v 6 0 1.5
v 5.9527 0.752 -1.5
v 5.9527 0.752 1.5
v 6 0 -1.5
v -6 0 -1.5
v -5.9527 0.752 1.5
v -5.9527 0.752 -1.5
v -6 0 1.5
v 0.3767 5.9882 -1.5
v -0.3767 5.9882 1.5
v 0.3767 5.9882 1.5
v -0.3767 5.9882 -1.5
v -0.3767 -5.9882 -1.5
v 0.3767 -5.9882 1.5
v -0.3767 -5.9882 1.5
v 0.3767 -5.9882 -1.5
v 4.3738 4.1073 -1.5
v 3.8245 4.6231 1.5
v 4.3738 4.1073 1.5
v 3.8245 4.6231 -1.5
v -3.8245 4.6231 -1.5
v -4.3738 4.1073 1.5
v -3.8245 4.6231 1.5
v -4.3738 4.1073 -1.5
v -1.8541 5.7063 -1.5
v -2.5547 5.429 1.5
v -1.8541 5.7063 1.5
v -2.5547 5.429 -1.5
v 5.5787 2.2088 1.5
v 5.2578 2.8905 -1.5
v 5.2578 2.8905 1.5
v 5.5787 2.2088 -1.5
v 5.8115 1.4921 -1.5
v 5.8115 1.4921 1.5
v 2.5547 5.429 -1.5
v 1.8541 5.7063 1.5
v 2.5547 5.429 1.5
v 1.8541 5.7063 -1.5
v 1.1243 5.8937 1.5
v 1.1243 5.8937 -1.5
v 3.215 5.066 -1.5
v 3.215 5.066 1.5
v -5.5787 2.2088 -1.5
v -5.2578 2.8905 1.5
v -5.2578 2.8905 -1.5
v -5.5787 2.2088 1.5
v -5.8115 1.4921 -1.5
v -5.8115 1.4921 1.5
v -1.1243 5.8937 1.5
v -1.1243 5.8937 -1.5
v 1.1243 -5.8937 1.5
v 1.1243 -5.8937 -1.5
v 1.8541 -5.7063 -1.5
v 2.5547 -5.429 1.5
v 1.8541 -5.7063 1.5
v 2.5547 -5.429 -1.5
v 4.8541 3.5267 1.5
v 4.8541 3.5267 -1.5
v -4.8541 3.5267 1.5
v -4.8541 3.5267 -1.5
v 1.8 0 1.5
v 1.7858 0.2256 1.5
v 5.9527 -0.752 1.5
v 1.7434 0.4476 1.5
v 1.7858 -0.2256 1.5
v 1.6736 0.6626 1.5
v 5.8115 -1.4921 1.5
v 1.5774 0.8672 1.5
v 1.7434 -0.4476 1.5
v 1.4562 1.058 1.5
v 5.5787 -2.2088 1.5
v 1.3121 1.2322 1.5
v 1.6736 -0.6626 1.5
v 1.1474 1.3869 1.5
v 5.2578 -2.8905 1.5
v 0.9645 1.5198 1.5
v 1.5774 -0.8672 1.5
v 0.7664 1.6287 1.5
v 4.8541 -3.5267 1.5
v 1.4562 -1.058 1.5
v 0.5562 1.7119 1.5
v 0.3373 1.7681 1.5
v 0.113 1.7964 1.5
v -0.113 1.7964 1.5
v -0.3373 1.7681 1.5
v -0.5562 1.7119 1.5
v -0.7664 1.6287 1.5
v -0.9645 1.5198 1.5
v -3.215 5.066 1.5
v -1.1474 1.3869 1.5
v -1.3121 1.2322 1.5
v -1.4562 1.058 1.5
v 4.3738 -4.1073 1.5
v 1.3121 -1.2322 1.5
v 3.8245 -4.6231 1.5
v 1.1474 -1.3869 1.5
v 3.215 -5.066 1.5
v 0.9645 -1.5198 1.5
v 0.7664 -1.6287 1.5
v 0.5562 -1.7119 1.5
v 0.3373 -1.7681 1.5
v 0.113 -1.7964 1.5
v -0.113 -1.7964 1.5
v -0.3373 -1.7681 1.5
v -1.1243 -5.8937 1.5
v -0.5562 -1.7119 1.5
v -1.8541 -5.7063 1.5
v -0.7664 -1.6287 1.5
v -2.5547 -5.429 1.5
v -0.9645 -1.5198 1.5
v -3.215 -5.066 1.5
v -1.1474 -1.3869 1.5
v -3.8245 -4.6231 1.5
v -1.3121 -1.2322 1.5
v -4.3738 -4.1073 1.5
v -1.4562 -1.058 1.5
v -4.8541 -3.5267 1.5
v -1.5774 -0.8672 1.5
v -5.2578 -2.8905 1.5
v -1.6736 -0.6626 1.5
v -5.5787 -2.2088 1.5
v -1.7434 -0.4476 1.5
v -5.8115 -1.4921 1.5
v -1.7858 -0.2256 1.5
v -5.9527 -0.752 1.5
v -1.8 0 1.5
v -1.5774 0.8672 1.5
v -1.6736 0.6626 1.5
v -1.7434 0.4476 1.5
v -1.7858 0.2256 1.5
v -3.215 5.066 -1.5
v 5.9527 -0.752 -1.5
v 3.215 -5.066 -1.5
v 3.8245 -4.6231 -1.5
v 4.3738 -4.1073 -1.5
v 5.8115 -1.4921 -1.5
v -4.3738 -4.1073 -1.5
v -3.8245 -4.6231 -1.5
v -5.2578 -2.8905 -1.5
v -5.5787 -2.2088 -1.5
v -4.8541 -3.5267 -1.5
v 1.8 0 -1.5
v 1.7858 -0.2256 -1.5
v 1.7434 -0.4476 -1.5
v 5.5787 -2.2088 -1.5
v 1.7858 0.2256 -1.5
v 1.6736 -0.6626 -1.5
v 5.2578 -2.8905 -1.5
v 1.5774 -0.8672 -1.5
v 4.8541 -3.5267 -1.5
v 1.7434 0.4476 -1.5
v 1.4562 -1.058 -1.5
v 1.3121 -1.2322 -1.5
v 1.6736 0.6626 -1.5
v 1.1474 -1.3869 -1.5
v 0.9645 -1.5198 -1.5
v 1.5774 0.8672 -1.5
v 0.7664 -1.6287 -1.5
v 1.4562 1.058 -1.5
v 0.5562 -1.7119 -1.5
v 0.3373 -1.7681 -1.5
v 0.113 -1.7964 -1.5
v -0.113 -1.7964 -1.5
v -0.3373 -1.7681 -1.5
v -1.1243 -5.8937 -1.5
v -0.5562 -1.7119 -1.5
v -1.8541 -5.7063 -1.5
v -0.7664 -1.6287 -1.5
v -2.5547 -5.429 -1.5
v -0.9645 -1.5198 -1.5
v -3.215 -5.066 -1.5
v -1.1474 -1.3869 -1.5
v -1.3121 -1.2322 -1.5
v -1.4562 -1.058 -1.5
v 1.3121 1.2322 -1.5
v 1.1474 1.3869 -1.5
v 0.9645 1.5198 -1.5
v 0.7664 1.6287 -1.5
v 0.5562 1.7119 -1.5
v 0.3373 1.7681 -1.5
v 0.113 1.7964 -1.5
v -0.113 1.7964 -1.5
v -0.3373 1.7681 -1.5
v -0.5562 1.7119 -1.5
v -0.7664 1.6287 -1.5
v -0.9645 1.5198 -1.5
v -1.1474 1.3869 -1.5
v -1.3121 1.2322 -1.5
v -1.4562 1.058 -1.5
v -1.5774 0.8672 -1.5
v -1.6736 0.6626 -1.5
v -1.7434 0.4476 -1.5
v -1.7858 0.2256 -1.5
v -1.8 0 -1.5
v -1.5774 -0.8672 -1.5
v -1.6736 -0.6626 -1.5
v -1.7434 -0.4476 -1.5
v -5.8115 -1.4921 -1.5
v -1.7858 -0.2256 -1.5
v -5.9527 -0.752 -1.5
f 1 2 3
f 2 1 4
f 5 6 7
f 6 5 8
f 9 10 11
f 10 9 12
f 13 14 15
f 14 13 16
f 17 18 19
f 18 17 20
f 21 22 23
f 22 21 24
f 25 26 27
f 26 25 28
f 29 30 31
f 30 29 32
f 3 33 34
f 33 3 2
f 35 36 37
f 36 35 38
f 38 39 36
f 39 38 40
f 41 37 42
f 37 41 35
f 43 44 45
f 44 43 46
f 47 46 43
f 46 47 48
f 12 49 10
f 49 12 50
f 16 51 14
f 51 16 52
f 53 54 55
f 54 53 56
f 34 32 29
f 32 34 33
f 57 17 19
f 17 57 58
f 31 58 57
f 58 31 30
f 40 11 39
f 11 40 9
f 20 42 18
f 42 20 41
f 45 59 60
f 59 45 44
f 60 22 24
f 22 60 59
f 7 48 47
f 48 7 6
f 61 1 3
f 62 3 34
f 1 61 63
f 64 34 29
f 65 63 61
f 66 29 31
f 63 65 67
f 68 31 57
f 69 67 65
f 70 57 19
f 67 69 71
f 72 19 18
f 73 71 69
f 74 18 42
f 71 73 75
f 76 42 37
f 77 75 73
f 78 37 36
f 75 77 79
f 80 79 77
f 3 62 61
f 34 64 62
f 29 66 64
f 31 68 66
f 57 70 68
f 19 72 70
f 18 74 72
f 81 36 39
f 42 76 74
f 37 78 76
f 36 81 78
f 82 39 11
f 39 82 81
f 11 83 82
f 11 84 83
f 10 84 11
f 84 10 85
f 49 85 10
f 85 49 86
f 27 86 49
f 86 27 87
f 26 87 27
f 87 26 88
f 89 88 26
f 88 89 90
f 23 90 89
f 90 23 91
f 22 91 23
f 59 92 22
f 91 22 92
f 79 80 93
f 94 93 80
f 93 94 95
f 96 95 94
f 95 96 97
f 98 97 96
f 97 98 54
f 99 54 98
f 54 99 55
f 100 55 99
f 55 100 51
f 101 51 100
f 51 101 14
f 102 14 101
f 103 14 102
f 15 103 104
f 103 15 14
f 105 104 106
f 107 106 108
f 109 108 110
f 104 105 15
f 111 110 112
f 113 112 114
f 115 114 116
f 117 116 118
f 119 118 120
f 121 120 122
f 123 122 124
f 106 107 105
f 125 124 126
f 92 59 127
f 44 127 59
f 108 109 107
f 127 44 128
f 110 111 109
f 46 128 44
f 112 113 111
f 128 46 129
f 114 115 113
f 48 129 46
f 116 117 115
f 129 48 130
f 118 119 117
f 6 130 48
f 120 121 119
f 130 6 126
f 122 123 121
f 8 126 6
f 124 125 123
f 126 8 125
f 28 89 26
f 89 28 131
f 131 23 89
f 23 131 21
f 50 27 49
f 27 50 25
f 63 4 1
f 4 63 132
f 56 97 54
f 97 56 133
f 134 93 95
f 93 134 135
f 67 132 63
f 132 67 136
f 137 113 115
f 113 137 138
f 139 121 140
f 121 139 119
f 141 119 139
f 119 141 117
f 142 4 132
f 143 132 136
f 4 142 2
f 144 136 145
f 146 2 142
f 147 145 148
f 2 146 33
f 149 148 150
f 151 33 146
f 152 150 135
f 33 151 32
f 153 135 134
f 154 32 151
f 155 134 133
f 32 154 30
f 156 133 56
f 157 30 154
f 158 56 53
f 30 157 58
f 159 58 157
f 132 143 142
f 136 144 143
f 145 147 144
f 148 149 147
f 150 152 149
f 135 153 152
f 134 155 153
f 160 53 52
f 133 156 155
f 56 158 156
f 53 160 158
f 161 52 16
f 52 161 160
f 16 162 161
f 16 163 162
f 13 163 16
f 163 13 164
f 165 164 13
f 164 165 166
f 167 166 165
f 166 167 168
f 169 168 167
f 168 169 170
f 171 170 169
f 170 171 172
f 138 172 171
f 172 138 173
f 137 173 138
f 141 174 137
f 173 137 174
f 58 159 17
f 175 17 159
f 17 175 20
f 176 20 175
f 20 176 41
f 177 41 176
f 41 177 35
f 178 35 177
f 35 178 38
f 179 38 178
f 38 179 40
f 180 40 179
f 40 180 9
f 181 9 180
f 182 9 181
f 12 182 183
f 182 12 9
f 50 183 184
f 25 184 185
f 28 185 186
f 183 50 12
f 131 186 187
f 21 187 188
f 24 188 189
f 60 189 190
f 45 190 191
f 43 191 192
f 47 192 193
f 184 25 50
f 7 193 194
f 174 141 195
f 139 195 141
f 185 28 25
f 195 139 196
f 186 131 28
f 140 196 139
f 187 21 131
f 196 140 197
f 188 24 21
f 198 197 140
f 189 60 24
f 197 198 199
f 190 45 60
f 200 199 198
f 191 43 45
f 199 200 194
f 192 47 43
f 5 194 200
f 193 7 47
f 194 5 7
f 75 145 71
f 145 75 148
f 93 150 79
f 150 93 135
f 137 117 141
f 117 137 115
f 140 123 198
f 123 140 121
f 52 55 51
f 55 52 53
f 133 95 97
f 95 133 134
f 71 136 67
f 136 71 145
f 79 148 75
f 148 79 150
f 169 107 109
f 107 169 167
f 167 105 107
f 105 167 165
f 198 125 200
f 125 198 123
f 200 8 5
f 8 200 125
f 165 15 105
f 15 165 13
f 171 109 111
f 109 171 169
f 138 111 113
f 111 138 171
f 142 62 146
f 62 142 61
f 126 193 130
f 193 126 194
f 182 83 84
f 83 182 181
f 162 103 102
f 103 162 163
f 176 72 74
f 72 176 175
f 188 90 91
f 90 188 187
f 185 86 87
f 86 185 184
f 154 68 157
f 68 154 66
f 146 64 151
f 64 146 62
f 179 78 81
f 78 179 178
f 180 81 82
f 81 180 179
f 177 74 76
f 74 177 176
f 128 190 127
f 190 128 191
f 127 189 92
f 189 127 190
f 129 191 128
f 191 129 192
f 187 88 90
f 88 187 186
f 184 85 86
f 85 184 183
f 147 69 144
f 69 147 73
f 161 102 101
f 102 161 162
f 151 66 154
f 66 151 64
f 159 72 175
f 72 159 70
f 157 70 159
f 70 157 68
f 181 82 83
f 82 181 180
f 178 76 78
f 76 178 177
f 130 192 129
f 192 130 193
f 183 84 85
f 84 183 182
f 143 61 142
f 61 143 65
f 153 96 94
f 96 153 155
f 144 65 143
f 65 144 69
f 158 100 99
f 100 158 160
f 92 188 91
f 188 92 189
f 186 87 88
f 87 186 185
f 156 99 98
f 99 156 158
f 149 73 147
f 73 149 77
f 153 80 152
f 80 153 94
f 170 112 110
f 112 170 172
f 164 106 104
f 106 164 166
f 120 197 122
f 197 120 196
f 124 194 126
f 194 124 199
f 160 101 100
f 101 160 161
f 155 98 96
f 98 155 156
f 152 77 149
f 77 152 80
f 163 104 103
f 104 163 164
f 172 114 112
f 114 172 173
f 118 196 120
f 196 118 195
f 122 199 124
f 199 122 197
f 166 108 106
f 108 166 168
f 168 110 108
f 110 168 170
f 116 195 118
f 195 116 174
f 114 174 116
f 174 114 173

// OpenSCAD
$fn = 50;


difference() {
	union() {
		translate(v = [0, 0, -1.5000000000]) {
			cylinder(h = 3, r = 6.0000000000);
		}
	}
	union() {
		translate(v = [0, 0, -100.0000000000]) {
			cylinder(h = 200, r = 1.8000000000);
		}
	}
}
